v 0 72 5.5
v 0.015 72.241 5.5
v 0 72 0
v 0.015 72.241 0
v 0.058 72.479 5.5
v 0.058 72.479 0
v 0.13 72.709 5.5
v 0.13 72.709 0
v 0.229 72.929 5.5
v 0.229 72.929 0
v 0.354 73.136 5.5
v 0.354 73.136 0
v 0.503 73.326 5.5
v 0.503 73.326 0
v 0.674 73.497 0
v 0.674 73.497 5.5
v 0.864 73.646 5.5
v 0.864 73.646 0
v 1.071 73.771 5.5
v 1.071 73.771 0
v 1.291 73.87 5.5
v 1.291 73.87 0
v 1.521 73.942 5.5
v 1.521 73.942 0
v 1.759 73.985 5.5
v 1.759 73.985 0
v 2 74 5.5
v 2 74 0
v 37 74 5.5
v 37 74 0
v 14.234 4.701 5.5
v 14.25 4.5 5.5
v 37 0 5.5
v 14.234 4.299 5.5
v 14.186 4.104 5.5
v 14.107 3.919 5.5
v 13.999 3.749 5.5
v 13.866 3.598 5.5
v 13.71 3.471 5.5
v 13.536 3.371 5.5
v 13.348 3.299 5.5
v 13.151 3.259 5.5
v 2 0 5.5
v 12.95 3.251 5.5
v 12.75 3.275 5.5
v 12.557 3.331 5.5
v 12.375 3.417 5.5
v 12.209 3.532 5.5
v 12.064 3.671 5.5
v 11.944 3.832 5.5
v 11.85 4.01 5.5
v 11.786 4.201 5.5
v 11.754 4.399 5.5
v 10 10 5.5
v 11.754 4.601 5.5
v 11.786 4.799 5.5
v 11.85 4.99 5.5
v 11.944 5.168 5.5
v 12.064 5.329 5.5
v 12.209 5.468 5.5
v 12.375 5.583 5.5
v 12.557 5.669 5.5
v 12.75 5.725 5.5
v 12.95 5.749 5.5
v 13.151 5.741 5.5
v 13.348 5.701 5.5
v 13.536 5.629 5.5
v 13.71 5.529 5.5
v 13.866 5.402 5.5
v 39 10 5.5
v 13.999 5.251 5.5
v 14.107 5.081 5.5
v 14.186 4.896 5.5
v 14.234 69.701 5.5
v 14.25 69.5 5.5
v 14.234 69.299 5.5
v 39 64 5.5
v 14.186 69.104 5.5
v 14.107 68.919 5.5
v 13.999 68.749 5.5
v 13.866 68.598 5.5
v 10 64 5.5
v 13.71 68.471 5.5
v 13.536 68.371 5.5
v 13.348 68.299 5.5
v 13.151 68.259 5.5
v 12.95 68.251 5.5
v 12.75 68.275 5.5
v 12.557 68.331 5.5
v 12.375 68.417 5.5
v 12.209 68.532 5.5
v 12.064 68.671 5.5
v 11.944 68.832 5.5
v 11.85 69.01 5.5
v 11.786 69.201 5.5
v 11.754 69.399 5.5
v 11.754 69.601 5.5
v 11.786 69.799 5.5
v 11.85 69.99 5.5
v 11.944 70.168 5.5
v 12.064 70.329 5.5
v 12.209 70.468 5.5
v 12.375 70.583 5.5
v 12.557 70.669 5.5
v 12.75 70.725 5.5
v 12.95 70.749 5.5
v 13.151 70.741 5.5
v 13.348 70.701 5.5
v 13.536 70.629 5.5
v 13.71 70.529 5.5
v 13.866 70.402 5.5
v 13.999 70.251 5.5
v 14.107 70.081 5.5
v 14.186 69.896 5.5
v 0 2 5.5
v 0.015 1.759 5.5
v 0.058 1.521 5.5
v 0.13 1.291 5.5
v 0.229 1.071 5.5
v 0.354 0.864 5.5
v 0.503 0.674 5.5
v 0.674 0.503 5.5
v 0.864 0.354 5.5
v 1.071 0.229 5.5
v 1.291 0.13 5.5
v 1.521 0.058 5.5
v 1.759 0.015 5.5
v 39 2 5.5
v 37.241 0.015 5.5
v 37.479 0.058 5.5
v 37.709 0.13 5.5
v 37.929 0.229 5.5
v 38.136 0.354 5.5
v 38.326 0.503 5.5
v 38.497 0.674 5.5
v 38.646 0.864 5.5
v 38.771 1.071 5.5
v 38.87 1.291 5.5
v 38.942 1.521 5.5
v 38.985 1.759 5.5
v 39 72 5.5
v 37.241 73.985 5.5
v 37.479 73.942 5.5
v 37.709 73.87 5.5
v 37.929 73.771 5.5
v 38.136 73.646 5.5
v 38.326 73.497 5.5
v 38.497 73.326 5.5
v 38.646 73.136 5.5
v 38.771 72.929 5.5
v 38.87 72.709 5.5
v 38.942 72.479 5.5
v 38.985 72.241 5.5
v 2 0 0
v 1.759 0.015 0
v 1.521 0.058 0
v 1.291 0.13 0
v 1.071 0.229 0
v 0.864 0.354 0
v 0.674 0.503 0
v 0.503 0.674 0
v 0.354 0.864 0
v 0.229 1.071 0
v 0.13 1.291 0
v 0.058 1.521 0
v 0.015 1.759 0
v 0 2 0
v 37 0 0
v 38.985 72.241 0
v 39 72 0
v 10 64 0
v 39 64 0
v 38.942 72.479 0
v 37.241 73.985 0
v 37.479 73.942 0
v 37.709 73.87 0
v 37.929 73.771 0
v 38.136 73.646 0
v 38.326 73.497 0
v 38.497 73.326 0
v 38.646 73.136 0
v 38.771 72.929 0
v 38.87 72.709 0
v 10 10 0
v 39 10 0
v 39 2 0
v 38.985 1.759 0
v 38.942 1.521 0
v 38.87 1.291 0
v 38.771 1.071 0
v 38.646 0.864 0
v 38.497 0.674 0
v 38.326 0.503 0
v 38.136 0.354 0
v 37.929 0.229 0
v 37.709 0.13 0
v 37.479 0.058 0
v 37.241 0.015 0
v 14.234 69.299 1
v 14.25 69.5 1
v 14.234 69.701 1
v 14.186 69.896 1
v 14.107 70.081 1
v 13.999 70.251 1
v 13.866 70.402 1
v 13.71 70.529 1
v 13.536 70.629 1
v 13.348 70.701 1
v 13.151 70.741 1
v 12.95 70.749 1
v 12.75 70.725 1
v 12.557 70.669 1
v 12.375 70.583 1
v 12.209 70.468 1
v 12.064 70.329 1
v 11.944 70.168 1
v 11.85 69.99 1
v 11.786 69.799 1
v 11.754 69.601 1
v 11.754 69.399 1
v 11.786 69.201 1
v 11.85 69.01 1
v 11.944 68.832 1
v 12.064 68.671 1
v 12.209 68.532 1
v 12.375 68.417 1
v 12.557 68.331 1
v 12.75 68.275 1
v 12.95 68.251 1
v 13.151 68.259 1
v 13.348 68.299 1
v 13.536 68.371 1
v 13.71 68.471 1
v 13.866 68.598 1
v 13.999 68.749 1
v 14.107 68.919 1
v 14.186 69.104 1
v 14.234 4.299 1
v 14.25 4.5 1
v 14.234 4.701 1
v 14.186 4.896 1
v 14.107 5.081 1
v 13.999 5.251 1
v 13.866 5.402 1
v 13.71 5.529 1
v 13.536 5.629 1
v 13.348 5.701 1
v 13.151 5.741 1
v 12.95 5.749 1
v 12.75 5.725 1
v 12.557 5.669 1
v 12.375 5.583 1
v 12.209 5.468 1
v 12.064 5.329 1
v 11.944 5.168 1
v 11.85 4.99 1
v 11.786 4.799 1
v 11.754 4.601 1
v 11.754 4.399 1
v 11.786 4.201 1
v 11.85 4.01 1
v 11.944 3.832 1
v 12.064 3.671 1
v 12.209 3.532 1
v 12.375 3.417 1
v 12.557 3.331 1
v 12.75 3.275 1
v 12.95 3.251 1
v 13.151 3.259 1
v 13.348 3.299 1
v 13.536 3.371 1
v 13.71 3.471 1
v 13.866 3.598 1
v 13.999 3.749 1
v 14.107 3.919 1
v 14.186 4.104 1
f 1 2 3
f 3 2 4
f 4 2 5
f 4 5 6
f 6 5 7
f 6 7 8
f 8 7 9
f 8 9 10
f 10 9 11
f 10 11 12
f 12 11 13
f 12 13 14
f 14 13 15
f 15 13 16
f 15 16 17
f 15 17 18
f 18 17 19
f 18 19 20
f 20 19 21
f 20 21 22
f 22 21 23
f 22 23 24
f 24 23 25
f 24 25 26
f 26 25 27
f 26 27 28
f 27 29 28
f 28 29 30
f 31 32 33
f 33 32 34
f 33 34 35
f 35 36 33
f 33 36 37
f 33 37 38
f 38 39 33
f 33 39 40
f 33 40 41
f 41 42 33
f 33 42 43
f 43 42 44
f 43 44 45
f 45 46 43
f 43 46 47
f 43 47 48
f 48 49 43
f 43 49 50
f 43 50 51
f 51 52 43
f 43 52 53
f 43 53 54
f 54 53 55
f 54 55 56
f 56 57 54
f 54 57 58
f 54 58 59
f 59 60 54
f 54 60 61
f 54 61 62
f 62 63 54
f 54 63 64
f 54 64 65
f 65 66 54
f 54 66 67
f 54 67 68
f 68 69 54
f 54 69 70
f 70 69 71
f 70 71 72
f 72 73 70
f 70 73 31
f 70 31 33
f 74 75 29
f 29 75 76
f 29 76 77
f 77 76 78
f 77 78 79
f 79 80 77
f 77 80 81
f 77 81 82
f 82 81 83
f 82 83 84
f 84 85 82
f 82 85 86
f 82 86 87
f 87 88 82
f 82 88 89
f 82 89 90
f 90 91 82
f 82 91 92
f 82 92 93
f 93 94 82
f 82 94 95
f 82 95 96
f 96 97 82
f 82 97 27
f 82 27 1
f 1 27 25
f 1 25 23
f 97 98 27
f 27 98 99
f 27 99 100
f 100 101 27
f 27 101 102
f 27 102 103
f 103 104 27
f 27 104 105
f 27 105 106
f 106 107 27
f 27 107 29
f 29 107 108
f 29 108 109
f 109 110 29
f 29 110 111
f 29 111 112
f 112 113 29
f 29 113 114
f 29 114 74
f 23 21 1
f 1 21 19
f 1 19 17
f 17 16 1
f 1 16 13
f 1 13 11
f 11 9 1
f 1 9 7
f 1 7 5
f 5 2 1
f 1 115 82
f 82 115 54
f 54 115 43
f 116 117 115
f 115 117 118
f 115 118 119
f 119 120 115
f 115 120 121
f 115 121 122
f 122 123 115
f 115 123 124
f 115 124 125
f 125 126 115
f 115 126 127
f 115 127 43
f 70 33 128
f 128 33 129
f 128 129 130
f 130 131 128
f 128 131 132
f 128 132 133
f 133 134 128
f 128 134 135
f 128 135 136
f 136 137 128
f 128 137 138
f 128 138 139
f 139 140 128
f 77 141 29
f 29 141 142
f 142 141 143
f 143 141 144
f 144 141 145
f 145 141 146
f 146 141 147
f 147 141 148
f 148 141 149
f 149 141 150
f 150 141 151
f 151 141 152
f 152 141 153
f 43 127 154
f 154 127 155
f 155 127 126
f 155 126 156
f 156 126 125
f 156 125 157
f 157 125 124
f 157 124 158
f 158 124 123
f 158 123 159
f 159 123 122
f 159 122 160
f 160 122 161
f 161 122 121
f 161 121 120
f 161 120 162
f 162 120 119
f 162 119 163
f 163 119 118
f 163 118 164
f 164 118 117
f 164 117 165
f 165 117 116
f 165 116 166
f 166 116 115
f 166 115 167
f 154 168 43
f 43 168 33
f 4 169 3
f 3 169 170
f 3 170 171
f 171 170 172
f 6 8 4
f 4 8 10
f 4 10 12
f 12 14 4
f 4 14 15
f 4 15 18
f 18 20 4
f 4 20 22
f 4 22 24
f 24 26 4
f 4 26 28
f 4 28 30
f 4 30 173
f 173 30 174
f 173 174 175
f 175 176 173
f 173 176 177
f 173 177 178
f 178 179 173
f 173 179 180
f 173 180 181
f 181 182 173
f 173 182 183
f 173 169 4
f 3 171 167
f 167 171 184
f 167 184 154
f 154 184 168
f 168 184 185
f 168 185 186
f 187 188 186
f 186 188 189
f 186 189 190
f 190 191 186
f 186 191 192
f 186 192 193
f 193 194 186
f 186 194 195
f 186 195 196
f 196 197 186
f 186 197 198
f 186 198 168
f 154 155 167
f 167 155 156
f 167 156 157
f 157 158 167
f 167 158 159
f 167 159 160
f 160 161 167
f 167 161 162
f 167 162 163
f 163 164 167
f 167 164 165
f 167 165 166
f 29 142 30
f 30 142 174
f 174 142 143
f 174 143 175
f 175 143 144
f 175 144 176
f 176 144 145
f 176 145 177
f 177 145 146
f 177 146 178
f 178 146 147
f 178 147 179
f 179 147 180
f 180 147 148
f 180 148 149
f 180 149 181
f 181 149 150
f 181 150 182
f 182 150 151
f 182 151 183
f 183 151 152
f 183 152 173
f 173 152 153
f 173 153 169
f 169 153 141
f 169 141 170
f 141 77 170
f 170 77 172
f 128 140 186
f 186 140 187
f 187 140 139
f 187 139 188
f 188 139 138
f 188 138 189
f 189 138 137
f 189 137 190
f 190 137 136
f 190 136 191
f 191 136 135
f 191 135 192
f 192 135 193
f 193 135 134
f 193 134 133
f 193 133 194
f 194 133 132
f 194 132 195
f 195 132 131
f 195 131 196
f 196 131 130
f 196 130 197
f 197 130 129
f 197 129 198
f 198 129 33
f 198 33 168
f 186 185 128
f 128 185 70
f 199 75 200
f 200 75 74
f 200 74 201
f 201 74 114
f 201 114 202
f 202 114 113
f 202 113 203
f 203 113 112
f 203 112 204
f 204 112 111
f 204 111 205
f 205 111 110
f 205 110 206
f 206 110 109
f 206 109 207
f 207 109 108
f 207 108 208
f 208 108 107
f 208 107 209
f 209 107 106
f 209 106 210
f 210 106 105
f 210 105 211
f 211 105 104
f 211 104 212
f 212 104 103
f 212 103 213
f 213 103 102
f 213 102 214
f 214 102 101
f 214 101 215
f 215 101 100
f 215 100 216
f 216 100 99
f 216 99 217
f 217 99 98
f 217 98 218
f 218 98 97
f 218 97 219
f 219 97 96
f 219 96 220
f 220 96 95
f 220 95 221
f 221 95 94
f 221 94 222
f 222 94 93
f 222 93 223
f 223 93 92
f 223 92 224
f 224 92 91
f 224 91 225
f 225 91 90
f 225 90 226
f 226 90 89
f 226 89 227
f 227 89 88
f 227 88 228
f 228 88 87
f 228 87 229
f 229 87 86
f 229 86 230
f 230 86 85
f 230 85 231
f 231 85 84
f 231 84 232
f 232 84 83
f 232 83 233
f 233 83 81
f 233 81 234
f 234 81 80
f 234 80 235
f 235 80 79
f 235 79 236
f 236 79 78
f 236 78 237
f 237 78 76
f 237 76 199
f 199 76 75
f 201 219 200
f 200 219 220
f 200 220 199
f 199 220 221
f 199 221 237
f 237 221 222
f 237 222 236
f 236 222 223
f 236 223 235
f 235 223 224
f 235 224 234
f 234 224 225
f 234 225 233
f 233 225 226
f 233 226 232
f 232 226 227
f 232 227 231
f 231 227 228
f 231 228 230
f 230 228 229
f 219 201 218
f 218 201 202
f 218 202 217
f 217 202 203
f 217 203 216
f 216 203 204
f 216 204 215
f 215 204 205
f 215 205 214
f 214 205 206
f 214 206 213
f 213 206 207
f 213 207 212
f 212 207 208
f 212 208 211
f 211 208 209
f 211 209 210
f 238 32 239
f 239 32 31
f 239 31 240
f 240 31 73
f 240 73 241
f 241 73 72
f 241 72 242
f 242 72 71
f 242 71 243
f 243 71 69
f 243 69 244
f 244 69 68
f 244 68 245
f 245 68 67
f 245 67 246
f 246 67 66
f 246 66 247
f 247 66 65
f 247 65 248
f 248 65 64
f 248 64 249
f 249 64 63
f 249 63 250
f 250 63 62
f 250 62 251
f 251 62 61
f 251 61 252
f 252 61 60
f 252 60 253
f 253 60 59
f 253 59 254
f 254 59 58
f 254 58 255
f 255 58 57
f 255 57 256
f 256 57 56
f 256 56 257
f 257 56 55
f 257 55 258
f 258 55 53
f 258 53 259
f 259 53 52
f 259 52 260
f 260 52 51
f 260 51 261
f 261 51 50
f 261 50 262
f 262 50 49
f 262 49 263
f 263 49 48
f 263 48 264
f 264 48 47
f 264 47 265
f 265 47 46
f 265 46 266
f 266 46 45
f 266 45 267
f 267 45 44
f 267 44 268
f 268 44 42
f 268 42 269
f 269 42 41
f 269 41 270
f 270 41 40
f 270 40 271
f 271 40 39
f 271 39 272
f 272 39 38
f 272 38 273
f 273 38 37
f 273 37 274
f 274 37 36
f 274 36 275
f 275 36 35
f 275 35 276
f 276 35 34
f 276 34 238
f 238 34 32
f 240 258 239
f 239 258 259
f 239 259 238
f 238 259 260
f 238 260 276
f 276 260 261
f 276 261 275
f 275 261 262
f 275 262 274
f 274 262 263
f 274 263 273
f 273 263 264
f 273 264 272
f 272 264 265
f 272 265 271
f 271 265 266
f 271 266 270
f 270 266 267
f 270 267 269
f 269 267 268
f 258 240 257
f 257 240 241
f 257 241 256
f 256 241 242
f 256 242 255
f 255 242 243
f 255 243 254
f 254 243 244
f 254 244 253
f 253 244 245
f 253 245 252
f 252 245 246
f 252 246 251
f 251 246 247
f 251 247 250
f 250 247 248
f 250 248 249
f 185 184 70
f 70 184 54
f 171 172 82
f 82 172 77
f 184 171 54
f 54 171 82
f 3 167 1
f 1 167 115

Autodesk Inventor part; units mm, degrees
ref_plane "YZ Plane" through (0, 0, 0) normal (1, 0, 0) x (0, 1, 0)
ref_plane "XZ Plane" through (0, 0, 0) normal (0, 1, 0) x (-1, 0, 0)
ref_plane "XY Plane" through (0, 0, 0) normal (0, 0, 1) x (1, 0, 0)
sketch "Эскиз1" plane through (0, 0, 0) normal (0, 0, 1) x (1, 0, 0)
  line L0 (0, 0) -> (39, 0)
  line L1 (39, 0) -> (39, 74)
  line L2 (39, 74) -> (0, 74)
  line L3 (0, 74) -> (0, 0)
  dimension "d0" = 39
  dimension "d1" = 74
extrude "Выдавливание1" add sketch "Эскиз1" along normal blind 5.5
sketch "Эскиз2" plane through (0, 0, 5.5) normal (0, 0, 1) x (1, 0, 0)
  line L0 (39, 0) -> (39, 74) projected
  line L1 (39, 10) -> (10, 10)
  line L2 (10, 10) -> (10, 64)
  line L3 (10, 64) -> (39, 64)
  line L4 (39, 64) -> (39, 10)
  line L5 (0, 0) -> (39, 0) projected
  line L6 (39, 74) -> (0, 74) projected
  point P0 (39, 64)
  dimension "d4" = 10
  dimension "d5" = 10
  dimension "d6" = 29
extrude "Выдавливание2" cut sketch "Эскиз2" against normal blind 13.5
sketch "Эскиз3" plane through (0, 0, 5.5) normal (0, 0, 1) x (1, 0, 0)
  circle A0 centre (13, 4.5) radius 1.25
  circle A1 centre (13, 69.5) radius 1.25
  line L0 (39, 0) -> (39, 10) projected
  line L1 (39, 64) -> (39, 74) projected
  line L2 (0, 0) -> (39, 0) projected
  line L3 (39, 74) -> (0, 74) projected
  dimension "d9" = 26
  dimension "d10" = 26
  dimension "d11" = 2.5
  dimension "d12" = 2.5
  dimension "d13" = 65
  dimension "d14" = 4.5
  dimension "d15" = 4.5
extrude "Выдавливание3" cut sketch "Эскиз3" against normal blind 4.5
fillet "Сопряжение1" radius 2 4 edges at (39, 0, 2.75) (39, 74, 2.75) (0, 0, 2.75) (0, 74, 2.75)
properties part number "s-10-5_Holder"
